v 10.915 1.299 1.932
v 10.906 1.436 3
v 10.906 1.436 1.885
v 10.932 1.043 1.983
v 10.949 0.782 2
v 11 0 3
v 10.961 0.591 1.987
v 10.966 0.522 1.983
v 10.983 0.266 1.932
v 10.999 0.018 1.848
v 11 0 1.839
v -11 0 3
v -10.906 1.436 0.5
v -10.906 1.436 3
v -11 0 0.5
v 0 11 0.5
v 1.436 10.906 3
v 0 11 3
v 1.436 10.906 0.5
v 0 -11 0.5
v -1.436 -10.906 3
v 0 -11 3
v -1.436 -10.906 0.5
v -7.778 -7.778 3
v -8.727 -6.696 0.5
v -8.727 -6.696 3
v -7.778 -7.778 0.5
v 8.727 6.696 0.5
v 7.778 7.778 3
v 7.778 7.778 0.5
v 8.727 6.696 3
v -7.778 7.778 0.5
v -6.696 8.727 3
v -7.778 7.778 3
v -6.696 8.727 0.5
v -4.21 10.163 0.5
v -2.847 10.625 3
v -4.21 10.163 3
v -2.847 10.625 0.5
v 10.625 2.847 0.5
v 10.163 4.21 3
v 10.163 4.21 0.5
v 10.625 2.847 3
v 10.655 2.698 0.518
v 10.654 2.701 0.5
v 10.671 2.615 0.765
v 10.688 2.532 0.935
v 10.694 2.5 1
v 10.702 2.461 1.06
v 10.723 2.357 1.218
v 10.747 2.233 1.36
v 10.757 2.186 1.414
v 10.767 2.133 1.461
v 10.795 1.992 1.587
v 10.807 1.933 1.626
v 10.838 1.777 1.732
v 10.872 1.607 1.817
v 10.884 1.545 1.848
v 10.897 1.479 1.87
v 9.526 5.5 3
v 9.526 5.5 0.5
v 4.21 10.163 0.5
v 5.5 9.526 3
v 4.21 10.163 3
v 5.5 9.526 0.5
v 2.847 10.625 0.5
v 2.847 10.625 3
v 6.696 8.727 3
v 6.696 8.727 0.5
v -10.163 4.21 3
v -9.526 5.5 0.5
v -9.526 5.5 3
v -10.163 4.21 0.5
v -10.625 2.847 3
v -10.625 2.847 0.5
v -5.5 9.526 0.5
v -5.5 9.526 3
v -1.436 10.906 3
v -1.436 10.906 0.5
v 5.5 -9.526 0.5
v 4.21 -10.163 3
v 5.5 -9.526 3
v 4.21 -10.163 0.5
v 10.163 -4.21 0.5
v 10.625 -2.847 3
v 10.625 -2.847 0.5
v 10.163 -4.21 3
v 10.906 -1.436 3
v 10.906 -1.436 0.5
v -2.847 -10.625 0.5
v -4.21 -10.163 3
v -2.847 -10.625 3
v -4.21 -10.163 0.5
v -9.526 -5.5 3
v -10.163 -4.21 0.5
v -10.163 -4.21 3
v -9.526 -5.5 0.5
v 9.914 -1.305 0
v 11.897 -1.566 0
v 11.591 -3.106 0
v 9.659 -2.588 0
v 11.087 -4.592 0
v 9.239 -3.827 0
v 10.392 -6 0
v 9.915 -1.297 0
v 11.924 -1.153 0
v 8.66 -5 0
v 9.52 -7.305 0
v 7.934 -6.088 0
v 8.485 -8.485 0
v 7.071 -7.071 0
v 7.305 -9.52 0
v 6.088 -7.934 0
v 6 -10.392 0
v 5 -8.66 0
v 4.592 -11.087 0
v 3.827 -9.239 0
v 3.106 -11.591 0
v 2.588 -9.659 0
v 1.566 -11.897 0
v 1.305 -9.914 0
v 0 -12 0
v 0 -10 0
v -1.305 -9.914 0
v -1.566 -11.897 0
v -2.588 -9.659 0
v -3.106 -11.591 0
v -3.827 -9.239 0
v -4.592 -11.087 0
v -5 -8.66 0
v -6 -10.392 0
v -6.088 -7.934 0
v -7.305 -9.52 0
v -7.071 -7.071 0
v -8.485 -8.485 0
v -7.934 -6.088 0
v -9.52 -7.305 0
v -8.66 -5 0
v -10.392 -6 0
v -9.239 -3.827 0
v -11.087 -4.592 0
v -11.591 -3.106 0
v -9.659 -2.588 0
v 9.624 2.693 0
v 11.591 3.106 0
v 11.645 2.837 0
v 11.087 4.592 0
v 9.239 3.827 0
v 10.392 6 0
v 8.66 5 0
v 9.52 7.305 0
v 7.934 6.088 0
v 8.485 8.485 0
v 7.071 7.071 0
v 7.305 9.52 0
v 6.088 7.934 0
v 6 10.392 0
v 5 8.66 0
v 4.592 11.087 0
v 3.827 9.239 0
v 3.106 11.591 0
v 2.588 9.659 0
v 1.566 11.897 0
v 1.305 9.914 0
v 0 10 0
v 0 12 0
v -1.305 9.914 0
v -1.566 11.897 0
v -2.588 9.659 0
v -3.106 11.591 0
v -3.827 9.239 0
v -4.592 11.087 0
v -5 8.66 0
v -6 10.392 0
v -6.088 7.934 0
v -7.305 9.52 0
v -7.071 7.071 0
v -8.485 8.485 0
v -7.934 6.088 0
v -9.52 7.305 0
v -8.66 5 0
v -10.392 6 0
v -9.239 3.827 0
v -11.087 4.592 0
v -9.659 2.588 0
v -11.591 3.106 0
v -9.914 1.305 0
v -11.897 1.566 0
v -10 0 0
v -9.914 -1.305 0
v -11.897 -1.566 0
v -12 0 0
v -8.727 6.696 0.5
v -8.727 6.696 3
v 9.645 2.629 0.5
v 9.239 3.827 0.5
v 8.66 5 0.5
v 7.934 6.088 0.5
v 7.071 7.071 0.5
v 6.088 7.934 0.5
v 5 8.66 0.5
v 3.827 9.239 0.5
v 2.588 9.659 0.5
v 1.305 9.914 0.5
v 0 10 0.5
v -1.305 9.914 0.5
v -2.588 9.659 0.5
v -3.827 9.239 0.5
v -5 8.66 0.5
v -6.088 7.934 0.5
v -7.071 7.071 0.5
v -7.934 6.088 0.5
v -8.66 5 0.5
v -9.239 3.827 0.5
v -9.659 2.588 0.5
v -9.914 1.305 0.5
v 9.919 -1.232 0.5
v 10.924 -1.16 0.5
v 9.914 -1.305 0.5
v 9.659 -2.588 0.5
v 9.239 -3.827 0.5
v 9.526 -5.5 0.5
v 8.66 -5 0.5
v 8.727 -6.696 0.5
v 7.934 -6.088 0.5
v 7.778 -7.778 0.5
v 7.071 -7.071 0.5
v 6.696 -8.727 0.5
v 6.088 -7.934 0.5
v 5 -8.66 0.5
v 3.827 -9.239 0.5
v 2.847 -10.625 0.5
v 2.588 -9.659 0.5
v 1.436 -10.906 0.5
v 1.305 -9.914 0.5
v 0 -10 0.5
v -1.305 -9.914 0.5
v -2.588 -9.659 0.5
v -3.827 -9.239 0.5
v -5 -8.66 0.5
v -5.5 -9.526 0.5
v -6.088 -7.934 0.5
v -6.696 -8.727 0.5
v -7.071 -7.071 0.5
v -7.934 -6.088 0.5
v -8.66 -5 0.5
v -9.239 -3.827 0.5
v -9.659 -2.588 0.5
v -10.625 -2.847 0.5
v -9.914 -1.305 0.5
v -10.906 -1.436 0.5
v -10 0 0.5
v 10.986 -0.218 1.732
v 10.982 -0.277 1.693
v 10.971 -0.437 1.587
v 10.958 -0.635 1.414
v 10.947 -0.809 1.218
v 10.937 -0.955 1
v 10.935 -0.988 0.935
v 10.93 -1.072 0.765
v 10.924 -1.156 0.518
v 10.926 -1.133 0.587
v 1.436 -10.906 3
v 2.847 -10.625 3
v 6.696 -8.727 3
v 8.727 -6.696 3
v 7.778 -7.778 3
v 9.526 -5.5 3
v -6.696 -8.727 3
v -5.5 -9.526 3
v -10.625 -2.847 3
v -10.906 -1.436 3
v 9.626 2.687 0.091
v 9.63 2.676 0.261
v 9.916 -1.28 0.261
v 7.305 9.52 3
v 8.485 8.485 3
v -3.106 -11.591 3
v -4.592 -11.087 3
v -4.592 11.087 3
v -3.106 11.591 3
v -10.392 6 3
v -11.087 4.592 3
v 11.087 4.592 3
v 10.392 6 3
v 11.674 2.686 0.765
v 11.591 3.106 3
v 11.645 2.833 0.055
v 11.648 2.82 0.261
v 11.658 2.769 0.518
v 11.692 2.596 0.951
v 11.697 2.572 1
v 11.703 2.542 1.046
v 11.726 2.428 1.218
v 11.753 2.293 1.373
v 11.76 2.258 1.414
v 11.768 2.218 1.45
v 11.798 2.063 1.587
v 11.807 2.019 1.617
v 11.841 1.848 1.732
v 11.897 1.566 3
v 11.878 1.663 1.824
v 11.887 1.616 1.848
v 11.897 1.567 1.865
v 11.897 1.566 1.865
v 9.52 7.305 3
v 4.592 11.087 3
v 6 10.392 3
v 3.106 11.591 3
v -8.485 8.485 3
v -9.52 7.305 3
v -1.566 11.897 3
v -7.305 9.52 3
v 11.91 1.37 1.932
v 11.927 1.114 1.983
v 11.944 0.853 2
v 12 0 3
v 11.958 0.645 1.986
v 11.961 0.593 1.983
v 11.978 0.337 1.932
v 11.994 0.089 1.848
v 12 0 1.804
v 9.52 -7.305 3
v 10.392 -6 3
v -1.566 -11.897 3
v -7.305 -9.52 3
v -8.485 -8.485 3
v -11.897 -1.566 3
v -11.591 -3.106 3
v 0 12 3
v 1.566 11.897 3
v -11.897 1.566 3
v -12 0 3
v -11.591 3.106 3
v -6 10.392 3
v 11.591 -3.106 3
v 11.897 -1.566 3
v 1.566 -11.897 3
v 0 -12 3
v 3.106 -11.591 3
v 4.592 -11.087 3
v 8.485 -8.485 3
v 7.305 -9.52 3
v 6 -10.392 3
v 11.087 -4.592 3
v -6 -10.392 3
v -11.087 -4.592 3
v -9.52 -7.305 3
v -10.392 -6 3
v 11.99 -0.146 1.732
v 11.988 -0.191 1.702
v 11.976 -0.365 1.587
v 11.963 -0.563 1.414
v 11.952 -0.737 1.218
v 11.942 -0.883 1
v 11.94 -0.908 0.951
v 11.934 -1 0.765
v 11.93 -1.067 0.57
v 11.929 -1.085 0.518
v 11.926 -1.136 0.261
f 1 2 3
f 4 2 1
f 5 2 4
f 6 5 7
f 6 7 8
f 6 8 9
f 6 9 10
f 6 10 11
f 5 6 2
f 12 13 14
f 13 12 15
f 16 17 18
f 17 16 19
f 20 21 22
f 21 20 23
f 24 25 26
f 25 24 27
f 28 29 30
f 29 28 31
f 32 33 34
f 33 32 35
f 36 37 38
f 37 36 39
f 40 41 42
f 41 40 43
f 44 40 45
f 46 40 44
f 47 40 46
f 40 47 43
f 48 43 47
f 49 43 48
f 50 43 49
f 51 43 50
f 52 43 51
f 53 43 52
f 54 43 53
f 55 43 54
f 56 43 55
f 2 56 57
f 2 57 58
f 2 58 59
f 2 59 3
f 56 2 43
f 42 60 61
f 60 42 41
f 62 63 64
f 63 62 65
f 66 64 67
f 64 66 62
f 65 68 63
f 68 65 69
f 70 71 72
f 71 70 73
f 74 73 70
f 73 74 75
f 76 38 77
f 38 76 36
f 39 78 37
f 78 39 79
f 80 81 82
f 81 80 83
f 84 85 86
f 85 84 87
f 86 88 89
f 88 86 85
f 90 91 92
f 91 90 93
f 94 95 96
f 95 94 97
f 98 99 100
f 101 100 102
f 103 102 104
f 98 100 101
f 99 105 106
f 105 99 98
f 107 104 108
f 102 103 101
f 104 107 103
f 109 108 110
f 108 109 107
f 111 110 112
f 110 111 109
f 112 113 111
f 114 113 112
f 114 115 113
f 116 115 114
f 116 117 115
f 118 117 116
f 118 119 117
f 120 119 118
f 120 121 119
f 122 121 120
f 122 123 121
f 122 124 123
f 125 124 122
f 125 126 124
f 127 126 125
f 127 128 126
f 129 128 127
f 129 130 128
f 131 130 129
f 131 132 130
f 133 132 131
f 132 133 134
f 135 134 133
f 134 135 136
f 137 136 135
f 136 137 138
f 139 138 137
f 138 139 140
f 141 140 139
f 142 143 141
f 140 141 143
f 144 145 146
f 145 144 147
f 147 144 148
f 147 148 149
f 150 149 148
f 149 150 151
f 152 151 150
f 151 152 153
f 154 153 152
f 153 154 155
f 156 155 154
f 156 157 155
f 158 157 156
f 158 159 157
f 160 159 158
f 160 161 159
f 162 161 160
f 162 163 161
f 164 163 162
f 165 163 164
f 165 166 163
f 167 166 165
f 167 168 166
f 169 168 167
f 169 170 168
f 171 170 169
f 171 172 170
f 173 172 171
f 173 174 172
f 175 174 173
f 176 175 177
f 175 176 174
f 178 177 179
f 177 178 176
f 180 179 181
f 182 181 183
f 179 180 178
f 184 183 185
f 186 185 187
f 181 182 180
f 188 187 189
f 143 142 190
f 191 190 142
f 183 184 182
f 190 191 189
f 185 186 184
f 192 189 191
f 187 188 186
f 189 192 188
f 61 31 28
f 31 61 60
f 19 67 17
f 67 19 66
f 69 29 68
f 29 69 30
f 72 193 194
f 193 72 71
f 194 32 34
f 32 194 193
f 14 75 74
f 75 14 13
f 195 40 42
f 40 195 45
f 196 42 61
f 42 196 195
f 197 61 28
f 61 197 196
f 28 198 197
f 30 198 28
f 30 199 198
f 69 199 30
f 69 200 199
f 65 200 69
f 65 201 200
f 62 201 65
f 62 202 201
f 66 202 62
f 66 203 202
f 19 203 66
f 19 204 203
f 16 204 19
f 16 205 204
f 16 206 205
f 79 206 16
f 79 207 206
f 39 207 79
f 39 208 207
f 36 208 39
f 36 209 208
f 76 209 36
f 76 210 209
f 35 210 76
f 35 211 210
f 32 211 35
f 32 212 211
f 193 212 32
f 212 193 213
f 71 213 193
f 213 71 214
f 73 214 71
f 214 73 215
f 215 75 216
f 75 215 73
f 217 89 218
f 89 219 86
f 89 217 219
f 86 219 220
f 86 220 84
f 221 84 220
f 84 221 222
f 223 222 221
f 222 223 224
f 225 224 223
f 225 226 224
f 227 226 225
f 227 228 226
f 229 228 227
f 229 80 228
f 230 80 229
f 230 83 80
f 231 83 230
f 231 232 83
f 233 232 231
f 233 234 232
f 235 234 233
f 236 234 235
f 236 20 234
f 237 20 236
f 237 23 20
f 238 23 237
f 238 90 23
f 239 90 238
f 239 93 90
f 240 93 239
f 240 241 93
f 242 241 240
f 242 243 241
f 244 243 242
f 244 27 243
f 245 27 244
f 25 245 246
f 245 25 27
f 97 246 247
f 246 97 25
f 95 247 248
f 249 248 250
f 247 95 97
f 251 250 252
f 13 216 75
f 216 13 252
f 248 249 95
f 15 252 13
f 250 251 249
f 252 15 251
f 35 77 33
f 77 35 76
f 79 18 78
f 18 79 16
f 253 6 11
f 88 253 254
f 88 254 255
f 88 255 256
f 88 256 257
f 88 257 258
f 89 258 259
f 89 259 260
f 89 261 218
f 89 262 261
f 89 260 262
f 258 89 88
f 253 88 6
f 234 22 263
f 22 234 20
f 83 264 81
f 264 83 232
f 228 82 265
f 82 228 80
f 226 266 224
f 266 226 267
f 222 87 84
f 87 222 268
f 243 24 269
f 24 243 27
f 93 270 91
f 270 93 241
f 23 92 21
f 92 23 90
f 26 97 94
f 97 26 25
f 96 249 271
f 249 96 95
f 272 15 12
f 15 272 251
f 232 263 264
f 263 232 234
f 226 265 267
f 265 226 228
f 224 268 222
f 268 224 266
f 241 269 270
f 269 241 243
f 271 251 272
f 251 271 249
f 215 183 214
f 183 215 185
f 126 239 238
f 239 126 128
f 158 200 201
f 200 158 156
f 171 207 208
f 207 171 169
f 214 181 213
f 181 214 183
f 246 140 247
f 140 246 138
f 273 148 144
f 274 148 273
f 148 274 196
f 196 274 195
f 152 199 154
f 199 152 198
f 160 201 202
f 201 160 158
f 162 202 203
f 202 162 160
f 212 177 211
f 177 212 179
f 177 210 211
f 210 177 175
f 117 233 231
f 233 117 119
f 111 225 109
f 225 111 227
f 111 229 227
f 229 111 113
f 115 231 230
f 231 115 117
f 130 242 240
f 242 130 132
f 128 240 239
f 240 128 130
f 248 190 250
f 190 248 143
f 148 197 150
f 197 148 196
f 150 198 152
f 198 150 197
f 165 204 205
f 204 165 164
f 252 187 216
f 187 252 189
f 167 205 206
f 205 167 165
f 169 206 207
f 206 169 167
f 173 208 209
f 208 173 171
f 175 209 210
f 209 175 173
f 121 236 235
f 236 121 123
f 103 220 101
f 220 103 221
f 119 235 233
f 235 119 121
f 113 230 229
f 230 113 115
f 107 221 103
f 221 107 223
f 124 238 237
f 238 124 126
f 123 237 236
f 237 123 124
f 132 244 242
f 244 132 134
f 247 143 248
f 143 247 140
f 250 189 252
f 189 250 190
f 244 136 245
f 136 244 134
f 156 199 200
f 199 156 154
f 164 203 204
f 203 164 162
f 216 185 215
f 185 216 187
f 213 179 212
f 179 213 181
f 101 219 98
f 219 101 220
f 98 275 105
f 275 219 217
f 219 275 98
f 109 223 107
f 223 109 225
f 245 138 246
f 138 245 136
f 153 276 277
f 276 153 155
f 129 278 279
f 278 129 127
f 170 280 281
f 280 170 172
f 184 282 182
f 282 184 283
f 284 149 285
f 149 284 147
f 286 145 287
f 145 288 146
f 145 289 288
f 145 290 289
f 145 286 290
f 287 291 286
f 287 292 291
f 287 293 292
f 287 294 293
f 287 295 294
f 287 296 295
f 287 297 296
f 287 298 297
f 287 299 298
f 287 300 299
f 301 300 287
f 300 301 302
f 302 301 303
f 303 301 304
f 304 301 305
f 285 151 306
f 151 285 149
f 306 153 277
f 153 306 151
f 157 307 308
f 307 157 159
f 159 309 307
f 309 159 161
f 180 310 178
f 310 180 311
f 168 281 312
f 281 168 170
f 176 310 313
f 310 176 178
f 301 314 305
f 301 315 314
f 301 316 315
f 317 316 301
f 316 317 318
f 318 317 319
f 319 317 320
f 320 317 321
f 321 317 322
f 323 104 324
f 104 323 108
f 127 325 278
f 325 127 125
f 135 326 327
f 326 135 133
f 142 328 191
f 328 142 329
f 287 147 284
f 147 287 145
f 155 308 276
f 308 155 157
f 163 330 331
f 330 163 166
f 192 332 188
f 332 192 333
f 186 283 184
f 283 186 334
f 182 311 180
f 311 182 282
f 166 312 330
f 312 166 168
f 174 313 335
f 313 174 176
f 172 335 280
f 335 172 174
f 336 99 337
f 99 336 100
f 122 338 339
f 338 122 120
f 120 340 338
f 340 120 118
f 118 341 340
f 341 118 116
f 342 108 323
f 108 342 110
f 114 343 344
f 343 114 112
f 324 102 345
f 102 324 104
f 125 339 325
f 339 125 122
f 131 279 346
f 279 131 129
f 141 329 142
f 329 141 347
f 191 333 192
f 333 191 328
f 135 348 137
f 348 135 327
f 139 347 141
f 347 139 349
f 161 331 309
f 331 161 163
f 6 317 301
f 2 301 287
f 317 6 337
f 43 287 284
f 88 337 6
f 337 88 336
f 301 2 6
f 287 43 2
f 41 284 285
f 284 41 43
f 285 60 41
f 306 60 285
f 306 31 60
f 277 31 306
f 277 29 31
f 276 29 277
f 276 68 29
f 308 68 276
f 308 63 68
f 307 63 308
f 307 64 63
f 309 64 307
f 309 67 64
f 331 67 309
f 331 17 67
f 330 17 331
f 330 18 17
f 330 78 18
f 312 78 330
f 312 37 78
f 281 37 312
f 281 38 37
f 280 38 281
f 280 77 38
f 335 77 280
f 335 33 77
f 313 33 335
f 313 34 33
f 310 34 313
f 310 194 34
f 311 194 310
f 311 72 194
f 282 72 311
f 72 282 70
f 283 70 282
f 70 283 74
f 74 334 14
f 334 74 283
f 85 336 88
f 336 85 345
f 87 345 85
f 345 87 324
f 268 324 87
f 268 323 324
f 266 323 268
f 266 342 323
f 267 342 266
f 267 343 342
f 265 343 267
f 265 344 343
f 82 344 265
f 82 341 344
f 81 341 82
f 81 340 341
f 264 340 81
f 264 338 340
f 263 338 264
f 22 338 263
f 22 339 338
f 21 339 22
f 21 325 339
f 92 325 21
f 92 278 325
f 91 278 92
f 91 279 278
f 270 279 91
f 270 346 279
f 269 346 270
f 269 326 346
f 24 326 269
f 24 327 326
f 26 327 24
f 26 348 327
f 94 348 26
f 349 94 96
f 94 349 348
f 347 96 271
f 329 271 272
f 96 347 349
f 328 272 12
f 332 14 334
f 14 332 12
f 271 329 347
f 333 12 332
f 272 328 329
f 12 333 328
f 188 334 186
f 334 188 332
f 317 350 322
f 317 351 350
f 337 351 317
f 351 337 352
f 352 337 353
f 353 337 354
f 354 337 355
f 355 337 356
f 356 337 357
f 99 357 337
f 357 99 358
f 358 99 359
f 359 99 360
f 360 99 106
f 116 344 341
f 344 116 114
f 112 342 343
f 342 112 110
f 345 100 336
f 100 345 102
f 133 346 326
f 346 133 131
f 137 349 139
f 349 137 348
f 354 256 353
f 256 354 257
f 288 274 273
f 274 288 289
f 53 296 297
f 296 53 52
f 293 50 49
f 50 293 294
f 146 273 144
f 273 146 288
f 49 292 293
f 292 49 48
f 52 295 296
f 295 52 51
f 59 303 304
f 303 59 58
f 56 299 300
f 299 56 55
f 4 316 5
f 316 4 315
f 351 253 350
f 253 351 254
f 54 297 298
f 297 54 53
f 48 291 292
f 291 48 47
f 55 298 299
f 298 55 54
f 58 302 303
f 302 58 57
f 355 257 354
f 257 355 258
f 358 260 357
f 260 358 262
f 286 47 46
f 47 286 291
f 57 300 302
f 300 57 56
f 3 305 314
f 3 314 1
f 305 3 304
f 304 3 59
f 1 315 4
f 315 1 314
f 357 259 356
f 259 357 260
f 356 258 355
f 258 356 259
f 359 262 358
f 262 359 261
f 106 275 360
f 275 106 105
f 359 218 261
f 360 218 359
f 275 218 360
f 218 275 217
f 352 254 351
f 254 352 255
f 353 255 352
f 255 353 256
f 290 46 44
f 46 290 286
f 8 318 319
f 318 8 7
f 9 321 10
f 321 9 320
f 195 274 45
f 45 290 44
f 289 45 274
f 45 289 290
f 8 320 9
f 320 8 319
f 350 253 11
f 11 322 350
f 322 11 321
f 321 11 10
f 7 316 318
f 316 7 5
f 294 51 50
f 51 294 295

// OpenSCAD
// file: ../build_environments.scad
// build_environments.scad: modules to build level sections
//

module pool(diameter=10.0, wall_height=2.0, step_width=3.0, connections=[])
{
    difference() {
        union() {
        difference() {
            cylinder(h=0.5,r1=diameter+step_width,r2=diameter+step_width,$fn=48);
            translate([0,0,-0.1])
                cylinder(h=0.7,r1=diameter,r2=diameter,$fn=48);
        }
        difference() {
            cylinder(h=wall_height,r1=diameter+step_width+1.0,r2=diameter+step_width+1.0,$fn=48);
            translate([0,0,-0.1])
                cylinder(h=wall_height+0.2,r1=diameter+step_width,r2=diameter+step_width,$fn=48);
        }
        }
    
        for (c = connections)
        {
            rotate([0,90,0]) {
                angle = atan2(c[1],c[0]);
                rotate([-angle,0,0]) {
                    cylinder(h=diameter+5.0,r1=c[2],r2=c[2],$fn=48);
                }
            }
        }
    }
}

module straight(length=10.0, width=2.0, dy1=0.0, dy2=0.0, dz=0.0)
{
    dims = [0, 0, 0, 0, 0, (dz/length)];
    matrix = [
        [ 1, dims[0], dims[1], 0 ],
        [ dims[2], 1, dims[4], 0 ],
        [ dims[5], dims[3], 1, 0 ],
        [ 0, 0, 0, 1 ]
    ];
    multmatrix(matrix)
    difference() {
        translate([dy1,0,0])
        union() {
            rotate([0,90,0]) {
                difference() {
                    cylinder(h=(length-dy1-dy2),r1=width+1.0,r2=width+1.0,$fn=24);
                    translate([0,0,-0.1])
                        cylinder(h=(length-dy1-dy2+0.2),r1=width,r2=width,$fn=24);
                }
                difference() {
                    cylinder(h=1.0,r1=width+2.0,r2=width+2.0,$fn=24);
                    translate([0,0,-0.1])
                        cylinder(h=1.2,r1=width,r2=width,$fn=24);
                }
                translate([0,0,(length-dy1-dy2)-1.0]) {
                    difference() {
                        cylinder(h=1.0,r1=width+2.0,r2=width+2.0,$fn=24);
                        translate([0,0,-0.1])
                            cylinder(h=1.2,r1=width,r2=width,$fn=24);
                    }
                }
            }
        }
        translate([0,0,-(2*width+4.0)/2])
            cube([3*length,3*length,2*width+4.0],center=true);
    }
}

module curve(p0=[0,0], center=[0,0], dir=1, angle=0.0, width=2.0)
{
    radius = sqrt((p0[0]-center[0])*(p0[0]-center[0]) + (p0[1]-center[1])*(p0[1]-center[1]));
    if (dir == 0) {
        difference() {
            rotate([0,0,-90])
            difference() {
                rotate_extrude(angle = angle, convexity = 10, $fn=32)
                    translate([radius, 0, 0])
                        circle(r = width+1.0,$fn=24);
                rotate([0,0,-1.0])
                    rotate_extrude(angle = angle+2.0, convexity = 10, $fn=32)
                        translate([radius, 0, 0])
                            circle(r = width,$fn=24);
            }
            translate([0,0,-(2*width+4.0)/2])
                cube([5*radius,5*radius,2*width+4.0],center=true);
        }
    }
    else {
        difference() {
            rotate([0,0,90])
            difference() {
                rotate_extrude(angle = -angle, convexity = 10, $fn=32)
                    translate([radius, 0, 0])
                        circle(r = width+1.0,$fn=24);
                rotate([0,0,1.0])
                    rotate_extrude(angle = -angle-2.0, convexity = 10, $fn=32)
                        translate([radius, 0, 0])
                            circle(r = width,$fn=24);
            }
            translate([0,0,-(2*width+4.0)/2])
                cube([5*radius,5*radius,2*width+4.0],center=true);
        }
    }

}

// test pool
//pool(diameter=12.0000, wall_height=3.0000, step_width=3.0000, connections=[[0.0000,-26.0000,2.0000], [23.6074,0.0000,2.0000]]);

// test straight, slope
//straight(length=26.0000, width=2.0000, dy1=11.8322, dy2=6.7082, dz=0.0000);
//straight(length=29.1549, width=12.0000, dy1=0.0000, dy2=0.0000, dz=-15.0000);

// test curve
//curve(p0=[23.6074, 0.0000], center=[23.6074, 5.0000], dir=0, angle=60.1011, width=2.0000);
//curve(p0=[33.6426, 12.4219], center=[37.9771, 9.9295], dir=1, angle=120.4627, width=2.0000);
// main file
use <../build_environments.scad>;
pool(diameter=10.0000, wall_height=3.0000, step_width=1.0000, connections=[[28.0000,2.0000,2.0000]]);
